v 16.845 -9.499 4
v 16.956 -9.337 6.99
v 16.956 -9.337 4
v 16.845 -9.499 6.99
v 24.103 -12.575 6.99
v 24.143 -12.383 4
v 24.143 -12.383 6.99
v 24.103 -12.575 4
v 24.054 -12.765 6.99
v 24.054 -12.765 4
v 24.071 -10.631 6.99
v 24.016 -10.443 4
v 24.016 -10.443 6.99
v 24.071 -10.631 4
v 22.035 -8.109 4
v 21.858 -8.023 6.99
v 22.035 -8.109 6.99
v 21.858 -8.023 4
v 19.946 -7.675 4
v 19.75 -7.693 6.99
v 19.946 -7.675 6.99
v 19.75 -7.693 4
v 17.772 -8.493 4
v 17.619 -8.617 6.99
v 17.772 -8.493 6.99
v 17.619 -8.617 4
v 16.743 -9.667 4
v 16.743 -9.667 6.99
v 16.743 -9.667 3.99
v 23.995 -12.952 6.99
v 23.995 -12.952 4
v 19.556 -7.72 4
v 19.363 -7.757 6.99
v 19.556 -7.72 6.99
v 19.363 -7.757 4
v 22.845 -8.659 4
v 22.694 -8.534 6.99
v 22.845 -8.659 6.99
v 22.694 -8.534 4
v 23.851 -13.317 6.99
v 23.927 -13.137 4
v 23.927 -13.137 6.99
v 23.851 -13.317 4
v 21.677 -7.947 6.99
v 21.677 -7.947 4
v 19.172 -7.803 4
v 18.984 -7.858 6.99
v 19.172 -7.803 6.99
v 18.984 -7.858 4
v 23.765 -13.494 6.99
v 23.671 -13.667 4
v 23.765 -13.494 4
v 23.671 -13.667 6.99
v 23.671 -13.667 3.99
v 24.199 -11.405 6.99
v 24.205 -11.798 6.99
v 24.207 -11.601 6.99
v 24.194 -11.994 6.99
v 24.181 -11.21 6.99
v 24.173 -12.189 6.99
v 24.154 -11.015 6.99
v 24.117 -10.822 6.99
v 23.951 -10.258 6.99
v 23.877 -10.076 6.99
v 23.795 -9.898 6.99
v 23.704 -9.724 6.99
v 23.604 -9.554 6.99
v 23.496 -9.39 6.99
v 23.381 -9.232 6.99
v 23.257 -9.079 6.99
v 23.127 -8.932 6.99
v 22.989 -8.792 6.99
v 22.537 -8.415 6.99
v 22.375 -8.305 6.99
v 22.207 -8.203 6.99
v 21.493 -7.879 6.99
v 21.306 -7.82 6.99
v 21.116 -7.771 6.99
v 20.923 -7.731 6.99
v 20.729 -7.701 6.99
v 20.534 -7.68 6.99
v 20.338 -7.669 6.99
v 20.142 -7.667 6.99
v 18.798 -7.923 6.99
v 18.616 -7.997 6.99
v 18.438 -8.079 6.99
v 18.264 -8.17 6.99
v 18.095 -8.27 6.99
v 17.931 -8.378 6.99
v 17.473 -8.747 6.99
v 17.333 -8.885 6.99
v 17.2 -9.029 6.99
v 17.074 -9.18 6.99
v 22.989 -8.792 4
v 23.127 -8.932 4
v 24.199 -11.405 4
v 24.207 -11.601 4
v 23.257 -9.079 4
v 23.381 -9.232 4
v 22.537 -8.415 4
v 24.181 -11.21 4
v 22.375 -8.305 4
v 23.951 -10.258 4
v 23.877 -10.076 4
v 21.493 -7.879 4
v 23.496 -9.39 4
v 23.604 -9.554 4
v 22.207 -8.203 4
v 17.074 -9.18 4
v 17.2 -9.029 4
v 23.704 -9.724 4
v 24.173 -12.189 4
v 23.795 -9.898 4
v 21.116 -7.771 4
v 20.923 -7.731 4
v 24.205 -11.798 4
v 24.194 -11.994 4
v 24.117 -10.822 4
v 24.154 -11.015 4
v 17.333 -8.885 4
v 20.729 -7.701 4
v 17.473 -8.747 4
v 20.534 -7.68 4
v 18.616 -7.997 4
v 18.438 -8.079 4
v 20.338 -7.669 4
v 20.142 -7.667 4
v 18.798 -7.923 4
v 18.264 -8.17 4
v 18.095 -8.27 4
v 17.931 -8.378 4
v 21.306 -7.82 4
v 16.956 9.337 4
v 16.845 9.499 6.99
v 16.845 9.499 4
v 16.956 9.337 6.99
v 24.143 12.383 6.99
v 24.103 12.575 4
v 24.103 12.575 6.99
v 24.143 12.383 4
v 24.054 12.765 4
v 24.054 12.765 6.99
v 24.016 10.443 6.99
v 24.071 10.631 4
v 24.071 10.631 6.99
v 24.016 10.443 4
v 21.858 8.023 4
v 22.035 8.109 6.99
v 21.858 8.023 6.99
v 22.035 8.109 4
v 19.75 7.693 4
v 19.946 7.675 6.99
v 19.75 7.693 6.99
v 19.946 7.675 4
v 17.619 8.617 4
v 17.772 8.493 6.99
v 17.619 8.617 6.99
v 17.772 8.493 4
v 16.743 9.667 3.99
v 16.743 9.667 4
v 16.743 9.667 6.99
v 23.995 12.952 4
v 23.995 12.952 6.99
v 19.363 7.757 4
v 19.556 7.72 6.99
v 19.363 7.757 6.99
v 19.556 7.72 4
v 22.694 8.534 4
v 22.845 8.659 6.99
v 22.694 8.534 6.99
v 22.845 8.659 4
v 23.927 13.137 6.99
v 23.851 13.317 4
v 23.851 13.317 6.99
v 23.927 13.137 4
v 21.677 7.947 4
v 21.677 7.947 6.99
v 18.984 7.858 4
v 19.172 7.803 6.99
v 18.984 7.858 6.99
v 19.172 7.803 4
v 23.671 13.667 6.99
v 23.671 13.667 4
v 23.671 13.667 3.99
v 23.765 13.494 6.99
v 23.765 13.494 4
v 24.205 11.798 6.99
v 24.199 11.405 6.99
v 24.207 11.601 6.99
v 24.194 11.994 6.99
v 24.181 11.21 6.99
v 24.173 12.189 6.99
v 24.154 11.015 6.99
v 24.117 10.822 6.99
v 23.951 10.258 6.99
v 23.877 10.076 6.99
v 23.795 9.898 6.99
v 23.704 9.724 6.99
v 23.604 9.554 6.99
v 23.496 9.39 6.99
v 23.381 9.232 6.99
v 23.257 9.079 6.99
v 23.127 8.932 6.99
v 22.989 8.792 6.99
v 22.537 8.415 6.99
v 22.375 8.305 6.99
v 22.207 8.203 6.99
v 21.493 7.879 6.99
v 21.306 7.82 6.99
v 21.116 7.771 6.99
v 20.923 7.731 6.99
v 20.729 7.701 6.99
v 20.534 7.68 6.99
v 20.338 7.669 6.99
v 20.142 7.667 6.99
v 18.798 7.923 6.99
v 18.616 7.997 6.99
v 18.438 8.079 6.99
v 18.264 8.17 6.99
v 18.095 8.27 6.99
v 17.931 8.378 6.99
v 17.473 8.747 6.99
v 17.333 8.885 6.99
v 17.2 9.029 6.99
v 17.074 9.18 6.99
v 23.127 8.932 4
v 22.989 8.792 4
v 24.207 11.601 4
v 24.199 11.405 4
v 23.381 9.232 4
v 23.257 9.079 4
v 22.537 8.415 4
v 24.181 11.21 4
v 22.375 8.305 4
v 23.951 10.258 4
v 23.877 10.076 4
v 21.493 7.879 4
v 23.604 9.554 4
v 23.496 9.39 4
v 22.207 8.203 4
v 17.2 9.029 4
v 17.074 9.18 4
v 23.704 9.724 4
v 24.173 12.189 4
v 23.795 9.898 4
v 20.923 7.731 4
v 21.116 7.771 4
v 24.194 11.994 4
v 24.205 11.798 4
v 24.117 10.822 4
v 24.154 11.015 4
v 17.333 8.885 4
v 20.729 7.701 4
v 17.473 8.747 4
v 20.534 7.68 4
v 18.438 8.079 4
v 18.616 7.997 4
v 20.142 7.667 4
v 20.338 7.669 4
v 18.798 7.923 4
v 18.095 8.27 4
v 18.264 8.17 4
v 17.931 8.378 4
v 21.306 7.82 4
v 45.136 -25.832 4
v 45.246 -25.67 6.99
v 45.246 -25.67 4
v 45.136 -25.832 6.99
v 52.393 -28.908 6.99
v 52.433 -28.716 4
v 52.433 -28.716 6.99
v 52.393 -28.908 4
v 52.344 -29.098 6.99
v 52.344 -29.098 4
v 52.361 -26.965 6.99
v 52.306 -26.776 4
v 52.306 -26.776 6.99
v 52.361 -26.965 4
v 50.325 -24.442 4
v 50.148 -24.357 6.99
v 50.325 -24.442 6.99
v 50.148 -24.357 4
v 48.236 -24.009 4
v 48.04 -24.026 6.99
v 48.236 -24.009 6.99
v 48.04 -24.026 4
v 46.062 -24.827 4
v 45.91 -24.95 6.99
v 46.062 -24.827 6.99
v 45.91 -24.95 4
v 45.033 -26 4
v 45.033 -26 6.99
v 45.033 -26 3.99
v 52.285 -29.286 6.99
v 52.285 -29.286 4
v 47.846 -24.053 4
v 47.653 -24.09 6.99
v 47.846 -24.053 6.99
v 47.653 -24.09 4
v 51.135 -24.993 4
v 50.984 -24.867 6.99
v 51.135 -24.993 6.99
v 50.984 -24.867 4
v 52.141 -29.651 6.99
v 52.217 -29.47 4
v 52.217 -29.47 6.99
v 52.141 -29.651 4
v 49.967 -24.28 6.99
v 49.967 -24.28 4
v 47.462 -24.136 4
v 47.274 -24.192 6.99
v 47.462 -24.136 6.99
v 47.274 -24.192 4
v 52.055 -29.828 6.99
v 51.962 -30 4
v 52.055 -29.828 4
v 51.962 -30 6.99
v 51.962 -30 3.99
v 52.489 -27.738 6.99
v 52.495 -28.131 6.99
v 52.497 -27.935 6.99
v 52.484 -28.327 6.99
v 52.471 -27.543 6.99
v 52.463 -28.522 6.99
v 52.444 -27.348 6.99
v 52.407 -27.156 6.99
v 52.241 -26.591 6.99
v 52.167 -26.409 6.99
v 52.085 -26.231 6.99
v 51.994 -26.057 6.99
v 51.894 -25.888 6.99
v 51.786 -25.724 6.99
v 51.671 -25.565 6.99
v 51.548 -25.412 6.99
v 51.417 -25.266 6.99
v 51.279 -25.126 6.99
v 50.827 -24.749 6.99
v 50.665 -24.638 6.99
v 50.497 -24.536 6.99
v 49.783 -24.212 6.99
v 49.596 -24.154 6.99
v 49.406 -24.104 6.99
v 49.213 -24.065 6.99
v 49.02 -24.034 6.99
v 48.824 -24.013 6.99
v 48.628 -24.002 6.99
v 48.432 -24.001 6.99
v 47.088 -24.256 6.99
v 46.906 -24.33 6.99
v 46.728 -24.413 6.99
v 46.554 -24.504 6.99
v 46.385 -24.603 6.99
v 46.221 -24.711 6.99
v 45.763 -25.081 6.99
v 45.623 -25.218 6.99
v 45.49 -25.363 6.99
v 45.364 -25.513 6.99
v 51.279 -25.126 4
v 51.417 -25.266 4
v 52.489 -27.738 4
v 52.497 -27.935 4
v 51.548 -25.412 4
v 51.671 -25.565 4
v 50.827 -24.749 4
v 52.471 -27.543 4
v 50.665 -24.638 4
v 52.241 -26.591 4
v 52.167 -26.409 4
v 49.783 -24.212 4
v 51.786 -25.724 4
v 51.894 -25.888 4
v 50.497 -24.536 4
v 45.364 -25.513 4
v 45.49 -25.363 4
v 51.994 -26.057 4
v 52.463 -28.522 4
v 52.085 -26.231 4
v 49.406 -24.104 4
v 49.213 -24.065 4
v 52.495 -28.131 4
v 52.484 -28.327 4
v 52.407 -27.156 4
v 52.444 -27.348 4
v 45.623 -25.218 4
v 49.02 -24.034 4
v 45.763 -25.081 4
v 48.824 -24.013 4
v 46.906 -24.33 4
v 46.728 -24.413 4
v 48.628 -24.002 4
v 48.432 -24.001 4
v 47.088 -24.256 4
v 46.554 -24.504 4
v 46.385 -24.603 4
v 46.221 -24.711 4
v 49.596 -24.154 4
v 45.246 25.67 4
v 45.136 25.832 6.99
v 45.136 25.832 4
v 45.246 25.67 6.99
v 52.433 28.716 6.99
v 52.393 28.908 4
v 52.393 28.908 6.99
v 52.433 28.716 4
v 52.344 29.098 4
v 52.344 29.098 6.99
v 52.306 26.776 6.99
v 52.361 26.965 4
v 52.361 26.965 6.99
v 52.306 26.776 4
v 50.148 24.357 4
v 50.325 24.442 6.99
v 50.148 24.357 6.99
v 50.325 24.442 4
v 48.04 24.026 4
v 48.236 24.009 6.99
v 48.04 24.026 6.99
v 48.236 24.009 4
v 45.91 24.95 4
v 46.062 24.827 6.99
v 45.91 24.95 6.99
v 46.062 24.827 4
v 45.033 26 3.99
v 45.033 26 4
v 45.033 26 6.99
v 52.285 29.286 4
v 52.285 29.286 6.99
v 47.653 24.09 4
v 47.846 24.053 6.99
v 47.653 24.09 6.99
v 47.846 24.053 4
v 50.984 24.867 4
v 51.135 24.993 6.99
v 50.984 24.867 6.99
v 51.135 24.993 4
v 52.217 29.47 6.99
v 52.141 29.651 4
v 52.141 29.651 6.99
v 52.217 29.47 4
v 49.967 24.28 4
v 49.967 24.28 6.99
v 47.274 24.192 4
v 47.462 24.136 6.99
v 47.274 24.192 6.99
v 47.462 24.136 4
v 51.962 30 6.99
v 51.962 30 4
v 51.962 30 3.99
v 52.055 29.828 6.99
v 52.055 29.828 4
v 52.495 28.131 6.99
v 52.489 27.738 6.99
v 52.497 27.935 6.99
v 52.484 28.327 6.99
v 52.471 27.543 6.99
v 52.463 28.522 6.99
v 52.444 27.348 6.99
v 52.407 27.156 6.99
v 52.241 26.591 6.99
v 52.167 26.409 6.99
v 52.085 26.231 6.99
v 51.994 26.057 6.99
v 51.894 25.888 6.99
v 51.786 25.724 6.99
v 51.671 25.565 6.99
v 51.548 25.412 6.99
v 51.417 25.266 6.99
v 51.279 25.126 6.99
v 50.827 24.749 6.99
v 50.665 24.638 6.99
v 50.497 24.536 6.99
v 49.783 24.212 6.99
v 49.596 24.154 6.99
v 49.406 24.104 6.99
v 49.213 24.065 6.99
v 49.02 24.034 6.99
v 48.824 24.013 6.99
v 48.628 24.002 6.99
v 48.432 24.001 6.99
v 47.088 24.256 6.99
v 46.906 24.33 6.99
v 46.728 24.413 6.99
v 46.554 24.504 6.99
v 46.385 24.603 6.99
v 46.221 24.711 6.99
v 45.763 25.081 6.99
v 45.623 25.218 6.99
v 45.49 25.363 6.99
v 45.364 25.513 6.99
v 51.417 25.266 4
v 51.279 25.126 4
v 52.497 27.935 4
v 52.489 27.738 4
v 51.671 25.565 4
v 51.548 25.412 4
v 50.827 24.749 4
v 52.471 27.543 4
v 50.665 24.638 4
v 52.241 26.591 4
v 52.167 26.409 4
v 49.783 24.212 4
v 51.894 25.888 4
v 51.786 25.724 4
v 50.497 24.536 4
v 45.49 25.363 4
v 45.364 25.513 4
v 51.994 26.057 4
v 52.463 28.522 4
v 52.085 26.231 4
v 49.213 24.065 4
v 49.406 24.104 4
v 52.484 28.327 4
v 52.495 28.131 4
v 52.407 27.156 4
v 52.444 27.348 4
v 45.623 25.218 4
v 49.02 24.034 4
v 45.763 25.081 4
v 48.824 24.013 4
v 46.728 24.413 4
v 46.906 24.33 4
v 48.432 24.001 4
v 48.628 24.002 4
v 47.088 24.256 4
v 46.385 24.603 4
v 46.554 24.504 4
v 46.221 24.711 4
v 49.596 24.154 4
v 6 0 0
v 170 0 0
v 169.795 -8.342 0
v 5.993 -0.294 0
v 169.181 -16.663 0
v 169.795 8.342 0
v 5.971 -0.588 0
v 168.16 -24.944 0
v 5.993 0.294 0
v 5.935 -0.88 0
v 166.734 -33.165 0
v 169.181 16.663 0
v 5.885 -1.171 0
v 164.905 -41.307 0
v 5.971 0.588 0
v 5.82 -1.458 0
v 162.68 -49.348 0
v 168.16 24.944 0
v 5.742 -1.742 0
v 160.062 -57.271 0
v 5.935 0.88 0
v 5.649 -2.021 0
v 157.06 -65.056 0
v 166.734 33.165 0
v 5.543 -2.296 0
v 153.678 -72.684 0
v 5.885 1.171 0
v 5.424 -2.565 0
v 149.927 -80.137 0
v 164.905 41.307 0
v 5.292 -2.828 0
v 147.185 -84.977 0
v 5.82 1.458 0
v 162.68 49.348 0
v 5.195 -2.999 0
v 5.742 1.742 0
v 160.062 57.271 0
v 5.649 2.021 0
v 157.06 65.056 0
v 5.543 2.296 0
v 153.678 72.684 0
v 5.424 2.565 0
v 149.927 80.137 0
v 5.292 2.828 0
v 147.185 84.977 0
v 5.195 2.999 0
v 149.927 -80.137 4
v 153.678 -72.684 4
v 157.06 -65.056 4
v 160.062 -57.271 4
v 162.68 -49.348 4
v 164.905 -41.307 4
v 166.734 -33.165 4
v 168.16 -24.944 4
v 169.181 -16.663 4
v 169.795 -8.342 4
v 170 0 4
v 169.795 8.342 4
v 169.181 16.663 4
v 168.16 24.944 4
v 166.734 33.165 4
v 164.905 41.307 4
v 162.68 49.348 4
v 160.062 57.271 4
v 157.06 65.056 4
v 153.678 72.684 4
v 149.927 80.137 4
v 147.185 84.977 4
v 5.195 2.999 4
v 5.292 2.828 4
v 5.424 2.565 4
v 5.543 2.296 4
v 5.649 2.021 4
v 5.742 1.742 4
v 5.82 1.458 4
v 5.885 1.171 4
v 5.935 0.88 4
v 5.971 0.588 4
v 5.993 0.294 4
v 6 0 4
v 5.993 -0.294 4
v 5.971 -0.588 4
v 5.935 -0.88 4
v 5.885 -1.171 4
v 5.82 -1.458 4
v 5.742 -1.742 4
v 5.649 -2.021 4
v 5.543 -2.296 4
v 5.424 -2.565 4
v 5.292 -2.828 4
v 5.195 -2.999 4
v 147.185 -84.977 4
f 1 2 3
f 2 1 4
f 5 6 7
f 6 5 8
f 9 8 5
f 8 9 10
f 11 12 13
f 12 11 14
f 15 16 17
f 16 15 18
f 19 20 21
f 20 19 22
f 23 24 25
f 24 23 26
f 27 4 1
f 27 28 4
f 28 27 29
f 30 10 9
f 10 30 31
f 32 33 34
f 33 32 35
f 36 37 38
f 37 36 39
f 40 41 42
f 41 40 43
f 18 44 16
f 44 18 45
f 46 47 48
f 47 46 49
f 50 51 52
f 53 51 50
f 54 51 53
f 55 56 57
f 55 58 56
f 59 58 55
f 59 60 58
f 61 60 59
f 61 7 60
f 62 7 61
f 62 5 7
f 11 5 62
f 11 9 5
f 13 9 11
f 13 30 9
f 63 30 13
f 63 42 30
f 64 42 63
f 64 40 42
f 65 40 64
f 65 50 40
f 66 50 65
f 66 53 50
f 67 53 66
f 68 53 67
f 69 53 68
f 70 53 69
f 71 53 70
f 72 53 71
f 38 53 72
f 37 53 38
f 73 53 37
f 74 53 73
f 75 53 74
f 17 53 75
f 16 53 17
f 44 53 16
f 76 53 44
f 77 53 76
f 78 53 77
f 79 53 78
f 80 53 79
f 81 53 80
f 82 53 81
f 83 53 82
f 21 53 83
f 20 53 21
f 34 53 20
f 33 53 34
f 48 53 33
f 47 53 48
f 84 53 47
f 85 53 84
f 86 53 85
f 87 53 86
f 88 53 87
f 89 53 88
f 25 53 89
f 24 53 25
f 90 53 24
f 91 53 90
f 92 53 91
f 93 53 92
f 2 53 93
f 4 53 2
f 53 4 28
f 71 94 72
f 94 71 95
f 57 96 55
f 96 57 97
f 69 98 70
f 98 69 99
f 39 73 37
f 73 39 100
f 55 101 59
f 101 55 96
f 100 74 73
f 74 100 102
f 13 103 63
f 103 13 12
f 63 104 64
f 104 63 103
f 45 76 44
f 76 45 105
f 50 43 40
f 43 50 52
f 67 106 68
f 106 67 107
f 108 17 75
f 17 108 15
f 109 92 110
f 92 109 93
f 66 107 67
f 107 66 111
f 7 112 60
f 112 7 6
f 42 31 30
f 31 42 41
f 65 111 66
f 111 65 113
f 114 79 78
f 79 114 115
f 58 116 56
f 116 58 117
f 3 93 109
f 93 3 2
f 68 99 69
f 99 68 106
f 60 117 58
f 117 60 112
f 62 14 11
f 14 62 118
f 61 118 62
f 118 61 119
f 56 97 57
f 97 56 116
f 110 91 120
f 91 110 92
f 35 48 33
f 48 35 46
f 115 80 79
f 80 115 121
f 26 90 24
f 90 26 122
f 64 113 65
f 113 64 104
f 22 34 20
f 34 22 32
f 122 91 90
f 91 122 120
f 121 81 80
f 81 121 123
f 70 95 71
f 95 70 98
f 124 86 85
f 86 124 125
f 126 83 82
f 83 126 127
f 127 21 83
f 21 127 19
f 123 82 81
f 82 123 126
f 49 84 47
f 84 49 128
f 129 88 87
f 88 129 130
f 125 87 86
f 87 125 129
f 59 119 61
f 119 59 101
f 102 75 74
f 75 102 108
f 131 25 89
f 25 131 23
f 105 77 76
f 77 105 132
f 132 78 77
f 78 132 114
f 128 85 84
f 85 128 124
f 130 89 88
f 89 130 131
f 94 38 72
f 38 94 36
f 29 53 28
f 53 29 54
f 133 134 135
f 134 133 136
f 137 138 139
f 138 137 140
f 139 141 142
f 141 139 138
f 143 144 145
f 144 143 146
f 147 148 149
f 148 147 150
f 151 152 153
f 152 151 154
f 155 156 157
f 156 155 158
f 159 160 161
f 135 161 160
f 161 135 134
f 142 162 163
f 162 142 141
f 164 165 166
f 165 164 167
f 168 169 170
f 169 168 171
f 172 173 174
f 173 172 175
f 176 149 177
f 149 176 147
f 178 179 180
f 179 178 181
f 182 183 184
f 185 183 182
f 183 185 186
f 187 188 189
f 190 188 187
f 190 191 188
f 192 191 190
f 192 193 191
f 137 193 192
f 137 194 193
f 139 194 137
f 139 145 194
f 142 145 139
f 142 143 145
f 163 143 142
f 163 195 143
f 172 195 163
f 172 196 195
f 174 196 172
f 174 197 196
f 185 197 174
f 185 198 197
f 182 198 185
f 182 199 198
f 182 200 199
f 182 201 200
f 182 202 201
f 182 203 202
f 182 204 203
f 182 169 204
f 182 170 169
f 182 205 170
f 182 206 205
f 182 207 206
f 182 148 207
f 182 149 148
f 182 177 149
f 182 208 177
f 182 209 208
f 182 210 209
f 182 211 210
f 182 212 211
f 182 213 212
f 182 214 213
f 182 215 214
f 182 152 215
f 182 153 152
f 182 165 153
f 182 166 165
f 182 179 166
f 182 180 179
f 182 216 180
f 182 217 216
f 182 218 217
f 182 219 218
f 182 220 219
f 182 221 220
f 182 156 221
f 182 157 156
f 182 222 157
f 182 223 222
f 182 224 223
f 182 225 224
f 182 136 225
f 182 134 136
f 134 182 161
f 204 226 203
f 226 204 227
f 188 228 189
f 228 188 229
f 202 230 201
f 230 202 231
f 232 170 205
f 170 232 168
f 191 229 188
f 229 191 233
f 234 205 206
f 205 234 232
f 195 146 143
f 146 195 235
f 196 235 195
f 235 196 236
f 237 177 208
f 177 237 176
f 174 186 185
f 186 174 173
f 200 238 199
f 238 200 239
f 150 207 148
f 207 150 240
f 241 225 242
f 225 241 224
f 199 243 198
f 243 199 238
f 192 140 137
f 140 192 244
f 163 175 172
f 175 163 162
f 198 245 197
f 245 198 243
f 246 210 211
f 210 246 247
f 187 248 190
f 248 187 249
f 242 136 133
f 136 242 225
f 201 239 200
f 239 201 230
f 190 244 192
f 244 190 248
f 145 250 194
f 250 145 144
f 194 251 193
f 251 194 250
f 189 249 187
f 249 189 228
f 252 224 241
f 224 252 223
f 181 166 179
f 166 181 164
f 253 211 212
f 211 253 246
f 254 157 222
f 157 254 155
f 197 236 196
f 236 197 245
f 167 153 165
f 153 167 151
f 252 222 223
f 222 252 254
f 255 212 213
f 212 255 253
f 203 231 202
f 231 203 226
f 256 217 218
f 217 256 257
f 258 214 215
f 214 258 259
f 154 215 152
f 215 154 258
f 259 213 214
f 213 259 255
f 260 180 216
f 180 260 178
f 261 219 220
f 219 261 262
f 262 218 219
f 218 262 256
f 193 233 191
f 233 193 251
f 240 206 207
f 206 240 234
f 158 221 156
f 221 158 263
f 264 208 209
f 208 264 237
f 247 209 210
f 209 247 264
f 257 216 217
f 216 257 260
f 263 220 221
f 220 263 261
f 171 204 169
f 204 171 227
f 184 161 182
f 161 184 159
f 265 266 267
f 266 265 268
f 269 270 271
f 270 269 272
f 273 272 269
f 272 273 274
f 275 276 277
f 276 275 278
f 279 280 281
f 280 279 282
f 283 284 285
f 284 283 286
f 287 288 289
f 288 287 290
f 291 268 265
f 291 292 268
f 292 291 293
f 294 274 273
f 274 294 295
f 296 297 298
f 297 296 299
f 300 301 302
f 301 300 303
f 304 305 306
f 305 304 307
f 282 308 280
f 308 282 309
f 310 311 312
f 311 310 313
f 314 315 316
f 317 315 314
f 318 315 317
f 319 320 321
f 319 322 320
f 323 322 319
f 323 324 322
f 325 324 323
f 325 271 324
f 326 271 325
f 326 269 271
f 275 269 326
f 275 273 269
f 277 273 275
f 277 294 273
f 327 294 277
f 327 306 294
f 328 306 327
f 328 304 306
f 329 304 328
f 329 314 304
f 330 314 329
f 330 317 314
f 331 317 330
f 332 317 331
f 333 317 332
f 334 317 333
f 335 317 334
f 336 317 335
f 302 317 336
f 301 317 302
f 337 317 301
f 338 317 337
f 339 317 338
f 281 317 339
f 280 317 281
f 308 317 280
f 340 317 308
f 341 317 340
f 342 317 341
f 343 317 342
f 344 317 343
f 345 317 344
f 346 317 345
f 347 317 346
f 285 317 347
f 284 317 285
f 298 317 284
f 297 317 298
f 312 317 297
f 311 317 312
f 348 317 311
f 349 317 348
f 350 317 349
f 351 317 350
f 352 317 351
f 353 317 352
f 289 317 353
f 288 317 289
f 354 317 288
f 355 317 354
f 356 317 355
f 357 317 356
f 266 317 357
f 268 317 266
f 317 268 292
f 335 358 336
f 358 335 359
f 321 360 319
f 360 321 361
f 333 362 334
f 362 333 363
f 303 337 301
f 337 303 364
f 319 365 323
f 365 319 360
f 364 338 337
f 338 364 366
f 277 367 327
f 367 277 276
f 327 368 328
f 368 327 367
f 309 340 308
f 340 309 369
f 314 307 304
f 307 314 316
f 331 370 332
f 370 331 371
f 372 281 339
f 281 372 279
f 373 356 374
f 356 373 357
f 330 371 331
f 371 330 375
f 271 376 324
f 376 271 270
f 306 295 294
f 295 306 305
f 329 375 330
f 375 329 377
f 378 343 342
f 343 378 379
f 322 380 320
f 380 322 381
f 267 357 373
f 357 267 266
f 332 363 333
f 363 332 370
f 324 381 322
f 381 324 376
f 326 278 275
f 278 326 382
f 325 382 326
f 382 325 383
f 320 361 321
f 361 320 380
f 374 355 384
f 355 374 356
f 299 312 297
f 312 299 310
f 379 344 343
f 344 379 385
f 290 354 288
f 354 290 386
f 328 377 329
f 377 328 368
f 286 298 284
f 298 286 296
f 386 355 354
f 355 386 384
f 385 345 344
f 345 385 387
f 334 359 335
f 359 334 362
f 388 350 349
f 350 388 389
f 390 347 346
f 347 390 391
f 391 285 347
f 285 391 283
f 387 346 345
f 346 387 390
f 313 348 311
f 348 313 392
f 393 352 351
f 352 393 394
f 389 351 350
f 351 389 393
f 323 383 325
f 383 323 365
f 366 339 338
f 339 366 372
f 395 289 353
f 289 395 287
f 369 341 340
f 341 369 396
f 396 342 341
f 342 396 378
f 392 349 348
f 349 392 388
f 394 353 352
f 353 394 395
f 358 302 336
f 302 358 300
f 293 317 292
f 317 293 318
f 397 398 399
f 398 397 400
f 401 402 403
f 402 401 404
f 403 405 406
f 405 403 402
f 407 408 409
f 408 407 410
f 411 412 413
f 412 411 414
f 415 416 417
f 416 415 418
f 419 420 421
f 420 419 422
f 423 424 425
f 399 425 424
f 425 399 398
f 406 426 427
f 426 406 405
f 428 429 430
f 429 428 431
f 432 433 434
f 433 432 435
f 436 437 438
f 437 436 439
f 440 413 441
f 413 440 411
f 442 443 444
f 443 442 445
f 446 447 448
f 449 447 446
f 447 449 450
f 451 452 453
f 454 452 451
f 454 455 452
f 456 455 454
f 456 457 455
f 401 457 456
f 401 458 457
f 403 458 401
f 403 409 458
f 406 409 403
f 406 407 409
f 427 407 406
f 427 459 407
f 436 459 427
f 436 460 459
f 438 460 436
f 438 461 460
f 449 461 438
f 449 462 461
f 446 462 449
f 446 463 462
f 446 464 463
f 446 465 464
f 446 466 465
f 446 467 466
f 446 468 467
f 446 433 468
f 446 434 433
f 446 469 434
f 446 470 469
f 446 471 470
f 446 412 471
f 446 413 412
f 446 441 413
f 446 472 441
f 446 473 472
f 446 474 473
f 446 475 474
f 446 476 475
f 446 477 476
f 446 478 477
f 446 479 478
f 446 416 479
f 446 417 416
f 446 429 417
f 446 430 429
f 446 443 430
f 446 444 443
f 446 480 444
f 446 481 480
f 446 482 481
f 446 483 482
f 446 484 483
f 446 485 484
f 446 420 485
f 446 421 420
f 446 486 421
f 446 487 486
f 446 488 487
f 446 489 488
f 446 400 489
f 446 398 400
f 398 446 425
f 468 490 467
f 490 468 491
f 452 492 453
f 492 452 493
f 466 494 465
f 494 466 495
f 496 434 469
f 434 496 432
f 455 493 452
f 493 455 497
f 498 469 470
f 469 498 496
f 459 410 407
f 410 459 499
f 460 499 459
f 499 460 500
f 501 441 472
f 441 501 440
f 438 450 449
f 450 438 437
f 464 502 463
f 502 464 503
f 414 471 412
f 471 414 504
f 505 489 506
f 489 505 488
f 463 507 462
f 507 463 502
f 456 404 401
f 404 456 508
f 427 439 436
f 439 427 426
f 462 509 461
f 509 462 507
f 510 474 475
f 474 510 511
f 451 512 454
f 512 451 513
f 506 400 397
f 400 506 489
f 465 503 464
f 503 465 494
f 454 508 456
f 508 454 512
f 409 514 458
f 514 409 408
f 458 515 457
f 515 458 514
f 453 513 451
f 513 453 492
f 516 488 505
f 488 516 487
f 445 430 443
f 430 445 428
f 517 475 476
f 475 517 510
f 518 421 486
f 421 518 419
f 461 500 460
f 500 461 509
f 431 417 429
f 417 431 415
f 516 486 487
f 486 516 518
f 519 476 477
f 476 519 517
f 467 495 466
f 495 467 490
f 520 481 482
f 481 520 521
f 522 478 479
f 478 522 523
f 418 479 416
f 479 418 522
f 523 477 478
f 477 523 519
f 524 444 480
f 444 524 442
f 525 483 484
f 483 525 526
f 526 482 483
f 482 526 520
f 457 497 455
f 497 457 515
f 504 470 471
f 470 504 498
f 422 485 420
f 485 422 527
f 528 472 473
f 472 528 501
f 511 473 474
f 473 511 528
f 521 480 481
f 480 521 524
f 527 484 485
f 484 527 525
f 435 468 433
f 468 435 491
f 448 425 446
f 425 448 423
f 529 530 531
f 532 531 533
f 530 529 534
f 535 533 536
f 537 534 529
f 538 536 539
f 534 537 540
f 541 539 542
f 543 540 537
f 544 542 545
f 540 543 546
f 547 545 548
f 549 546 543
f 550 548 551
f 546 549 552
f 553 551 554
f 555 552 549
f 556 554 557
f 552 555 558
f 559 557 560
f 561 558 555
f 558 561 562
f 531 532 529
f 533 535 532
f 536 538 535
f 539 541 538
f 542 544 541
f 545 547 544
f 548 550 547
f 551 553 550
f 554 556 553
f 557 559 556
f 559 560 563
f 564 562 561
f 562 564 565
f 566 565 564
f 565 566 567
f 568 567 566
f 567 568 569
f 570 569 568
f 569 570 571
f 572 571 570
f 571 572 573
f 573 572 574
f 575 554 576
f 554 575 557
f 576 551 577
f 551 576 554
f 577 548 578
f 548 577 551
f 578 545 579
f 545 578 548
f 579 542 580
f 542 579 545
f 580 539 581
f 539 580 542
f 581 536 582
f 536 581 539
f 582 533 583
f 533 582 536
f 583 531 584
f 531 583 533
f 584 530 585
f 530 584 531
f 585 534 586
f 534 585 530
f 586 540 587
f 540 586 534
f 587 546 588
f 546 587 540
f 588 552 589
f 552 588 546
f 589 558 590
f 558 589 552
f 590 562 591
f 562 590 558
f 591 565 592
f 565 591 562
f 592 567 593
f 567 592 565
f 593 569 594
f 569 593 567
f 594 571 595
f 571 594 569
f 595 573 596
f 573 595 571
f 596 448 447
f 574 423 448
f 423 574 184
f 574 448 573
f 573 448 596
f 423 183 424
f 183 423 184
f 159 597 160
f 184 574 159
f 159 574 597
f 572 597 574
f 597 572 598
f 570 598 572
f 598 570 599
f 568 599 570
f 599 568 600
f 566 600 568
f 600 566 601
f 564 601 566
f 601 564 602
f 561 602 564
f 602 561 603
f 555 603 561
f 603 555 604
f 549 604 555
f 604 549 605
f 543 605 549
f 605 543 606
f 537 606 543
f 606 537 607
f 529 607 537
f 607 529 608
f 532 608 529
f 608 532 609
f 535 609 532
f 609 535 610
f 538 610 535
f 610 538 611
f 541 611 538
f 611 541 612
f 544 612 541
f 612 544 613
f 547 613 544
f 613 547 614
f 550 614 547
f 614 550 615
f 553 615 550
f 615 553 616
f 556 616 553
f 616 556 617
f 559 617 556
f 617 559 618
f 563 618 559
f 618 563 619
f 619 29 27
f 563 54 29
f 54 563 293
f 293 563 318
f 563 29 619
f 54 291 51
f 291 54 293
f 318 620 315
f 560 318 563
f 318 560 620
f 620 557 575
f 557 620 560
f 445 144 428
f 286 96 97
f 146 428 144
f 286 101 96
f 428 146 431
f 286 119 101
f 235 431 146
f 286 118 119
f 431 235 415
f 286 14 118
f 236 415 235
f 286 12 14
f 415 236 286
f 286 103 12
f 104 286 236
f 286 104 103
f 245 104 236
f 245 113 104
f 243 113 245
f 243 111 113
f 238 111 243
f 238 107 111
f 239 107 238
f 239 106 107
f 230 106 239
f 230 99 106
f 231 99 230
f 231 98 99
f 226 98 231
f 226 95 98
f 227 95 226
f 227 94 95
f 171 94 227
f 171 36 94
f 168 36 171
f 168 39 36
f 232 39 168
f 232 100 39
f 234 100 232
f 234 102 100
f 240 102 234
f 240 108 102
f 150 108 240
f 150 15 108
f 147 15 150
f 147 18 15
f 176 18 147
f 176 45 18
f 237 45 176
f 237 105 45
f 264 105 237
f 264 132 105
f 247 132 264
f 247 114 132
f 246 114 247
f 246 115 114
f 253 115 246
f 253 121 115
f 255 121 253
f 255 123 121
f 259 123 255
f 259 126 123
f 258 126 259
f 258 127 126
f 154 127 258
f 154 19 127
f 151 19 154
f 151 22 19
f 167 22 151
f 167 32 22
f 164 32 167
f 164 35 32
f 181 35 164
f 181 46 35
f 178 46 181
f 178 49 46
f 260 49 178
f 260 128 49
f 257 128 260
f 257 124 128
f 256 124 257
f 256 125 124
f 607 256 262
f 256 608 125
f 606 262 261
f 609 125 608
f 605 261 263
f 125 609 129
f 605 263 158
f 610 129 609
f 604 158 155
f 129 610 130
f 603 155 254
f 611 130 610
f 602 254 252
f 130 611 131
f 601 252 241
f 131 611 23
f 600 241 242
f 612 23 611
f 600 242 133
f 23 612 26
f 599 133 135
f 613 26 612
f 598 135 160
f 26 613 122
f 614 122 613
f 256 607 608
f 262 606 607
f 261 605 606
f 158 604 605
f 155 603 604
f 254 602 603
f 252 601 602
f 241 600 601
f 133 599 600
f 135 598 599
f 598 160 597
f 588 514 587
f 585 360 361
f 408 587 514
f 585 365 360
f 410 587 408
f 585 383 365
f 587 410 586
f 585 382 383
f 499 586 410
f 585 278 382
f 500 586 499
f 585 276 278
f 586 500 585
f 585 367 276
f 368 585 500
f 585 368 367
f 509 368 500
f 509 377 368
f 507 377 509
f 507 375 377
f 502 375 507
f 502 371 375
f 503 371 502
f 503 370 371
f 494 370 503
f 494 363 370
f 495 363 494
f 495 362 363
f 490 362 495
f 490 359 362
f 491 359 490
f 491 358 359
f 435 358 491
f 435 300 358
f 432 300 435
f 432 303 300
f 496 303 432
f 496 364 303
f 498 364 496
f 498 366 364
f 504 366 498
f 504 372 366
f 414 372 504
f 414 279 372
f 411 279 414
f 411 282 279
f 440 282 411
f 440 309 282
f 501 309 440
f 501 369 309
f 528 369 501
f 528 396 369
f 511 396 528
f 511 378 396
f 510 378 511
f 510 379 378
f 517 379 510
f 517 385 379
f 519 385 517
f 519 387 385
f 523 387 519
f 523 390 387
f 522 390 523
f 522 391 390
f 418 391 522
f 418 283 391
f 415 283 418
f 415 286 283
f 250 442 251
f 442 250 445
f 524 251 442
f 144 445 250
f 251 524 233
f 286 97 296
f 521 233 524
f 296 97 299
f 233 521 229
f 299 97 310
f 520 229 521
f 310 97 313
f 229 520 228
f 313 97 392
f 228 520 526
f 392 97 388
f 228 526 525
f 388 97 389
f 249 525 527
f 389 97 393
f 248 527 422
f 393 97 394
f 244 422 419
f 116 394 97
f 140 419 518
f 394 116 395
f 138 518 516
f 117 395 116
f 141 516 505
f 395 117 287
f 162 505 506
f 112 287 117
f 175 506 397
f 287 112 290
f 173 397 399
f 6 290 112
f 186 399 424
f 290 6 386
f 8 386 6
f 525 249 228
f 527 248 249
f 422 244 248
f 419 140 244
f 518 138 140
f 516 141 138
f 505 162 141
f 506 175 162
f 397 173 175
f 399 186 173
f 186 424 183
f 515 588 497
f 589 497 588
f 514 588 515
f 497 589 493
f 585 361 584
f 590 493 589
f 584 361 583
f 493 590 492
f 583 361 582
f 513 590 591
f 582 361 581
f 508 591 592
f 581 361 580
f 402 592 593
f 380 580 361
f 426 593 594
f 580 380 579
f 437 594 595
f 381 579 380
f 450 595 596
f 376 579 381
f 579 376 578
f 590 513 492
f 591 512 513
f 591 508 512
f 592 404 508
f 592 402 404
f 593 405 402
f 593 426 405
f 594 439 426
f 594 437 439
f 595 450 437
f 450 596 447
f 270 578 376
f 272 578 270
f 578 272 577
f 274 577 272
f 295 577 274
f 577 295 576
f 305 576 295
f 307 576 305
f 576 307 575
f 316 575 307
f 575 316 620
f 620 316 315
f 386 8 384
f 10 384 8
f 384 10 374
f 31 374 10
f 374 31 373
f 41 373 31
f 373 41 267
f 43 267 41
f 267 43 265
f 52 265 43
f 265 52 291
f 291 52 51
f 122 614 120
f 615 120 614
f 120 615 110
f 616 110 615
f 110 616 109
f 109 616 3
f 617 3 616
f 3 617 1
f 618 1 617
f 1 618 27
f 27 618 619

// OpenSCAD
// file: common.scad
// Model by Isaac Foraker
//
// Released under Creative Commons Attribution 4.0 International (CC BY 4.0)
// https://creativecommons.org/licenses/by/4.0/

$fn = 128;

// Wheel info
wheel_width = 4;
wheel_rad = 5;
wheel_hole_rad = 2;

// Track info
track_wall_thickness = 2;
track_wall_height = 5;
track_width = wheel_width + 0.5; // Need enough room for the wheel to fit in the arc of the circle
track_rad = 70;

// Simple ring creator.  `rad` is the inside radius of the ring.
module ring(rad, thickness, height) {
    rotate_extrude(convexity=10) translate([rad,0,0]) square([thickness,height]);
}
// main file
// Model by Isaac Foraker
//
// Released under Creative Commons Attribution 4.0 International (CC BY 4.0)
// https://creativecommons.org/licenses/by/4.0/

include <common.scad>
include <MCAD/2Dshapes.scad>

linear_extrude(track_wall_thickness+2)
    donutSlice(6,170, -30, 30);
    
translate([0,0,track_wall_thickness+2]) {
    for (a = [1/3,4/5]) {
        for (b = [0, 1]) mirror([0,b,0]) {
            rotate([0,0,-30]) {
                translate([track_rad*a,0,-0.01]) {
                    intersection() {
                        cylinder(h=track_wall_thickness+1, r=4);
                        translate([-4,0,0]) cube([8, 4, 10]);
                    }
                }
            }
        }
    }
}
